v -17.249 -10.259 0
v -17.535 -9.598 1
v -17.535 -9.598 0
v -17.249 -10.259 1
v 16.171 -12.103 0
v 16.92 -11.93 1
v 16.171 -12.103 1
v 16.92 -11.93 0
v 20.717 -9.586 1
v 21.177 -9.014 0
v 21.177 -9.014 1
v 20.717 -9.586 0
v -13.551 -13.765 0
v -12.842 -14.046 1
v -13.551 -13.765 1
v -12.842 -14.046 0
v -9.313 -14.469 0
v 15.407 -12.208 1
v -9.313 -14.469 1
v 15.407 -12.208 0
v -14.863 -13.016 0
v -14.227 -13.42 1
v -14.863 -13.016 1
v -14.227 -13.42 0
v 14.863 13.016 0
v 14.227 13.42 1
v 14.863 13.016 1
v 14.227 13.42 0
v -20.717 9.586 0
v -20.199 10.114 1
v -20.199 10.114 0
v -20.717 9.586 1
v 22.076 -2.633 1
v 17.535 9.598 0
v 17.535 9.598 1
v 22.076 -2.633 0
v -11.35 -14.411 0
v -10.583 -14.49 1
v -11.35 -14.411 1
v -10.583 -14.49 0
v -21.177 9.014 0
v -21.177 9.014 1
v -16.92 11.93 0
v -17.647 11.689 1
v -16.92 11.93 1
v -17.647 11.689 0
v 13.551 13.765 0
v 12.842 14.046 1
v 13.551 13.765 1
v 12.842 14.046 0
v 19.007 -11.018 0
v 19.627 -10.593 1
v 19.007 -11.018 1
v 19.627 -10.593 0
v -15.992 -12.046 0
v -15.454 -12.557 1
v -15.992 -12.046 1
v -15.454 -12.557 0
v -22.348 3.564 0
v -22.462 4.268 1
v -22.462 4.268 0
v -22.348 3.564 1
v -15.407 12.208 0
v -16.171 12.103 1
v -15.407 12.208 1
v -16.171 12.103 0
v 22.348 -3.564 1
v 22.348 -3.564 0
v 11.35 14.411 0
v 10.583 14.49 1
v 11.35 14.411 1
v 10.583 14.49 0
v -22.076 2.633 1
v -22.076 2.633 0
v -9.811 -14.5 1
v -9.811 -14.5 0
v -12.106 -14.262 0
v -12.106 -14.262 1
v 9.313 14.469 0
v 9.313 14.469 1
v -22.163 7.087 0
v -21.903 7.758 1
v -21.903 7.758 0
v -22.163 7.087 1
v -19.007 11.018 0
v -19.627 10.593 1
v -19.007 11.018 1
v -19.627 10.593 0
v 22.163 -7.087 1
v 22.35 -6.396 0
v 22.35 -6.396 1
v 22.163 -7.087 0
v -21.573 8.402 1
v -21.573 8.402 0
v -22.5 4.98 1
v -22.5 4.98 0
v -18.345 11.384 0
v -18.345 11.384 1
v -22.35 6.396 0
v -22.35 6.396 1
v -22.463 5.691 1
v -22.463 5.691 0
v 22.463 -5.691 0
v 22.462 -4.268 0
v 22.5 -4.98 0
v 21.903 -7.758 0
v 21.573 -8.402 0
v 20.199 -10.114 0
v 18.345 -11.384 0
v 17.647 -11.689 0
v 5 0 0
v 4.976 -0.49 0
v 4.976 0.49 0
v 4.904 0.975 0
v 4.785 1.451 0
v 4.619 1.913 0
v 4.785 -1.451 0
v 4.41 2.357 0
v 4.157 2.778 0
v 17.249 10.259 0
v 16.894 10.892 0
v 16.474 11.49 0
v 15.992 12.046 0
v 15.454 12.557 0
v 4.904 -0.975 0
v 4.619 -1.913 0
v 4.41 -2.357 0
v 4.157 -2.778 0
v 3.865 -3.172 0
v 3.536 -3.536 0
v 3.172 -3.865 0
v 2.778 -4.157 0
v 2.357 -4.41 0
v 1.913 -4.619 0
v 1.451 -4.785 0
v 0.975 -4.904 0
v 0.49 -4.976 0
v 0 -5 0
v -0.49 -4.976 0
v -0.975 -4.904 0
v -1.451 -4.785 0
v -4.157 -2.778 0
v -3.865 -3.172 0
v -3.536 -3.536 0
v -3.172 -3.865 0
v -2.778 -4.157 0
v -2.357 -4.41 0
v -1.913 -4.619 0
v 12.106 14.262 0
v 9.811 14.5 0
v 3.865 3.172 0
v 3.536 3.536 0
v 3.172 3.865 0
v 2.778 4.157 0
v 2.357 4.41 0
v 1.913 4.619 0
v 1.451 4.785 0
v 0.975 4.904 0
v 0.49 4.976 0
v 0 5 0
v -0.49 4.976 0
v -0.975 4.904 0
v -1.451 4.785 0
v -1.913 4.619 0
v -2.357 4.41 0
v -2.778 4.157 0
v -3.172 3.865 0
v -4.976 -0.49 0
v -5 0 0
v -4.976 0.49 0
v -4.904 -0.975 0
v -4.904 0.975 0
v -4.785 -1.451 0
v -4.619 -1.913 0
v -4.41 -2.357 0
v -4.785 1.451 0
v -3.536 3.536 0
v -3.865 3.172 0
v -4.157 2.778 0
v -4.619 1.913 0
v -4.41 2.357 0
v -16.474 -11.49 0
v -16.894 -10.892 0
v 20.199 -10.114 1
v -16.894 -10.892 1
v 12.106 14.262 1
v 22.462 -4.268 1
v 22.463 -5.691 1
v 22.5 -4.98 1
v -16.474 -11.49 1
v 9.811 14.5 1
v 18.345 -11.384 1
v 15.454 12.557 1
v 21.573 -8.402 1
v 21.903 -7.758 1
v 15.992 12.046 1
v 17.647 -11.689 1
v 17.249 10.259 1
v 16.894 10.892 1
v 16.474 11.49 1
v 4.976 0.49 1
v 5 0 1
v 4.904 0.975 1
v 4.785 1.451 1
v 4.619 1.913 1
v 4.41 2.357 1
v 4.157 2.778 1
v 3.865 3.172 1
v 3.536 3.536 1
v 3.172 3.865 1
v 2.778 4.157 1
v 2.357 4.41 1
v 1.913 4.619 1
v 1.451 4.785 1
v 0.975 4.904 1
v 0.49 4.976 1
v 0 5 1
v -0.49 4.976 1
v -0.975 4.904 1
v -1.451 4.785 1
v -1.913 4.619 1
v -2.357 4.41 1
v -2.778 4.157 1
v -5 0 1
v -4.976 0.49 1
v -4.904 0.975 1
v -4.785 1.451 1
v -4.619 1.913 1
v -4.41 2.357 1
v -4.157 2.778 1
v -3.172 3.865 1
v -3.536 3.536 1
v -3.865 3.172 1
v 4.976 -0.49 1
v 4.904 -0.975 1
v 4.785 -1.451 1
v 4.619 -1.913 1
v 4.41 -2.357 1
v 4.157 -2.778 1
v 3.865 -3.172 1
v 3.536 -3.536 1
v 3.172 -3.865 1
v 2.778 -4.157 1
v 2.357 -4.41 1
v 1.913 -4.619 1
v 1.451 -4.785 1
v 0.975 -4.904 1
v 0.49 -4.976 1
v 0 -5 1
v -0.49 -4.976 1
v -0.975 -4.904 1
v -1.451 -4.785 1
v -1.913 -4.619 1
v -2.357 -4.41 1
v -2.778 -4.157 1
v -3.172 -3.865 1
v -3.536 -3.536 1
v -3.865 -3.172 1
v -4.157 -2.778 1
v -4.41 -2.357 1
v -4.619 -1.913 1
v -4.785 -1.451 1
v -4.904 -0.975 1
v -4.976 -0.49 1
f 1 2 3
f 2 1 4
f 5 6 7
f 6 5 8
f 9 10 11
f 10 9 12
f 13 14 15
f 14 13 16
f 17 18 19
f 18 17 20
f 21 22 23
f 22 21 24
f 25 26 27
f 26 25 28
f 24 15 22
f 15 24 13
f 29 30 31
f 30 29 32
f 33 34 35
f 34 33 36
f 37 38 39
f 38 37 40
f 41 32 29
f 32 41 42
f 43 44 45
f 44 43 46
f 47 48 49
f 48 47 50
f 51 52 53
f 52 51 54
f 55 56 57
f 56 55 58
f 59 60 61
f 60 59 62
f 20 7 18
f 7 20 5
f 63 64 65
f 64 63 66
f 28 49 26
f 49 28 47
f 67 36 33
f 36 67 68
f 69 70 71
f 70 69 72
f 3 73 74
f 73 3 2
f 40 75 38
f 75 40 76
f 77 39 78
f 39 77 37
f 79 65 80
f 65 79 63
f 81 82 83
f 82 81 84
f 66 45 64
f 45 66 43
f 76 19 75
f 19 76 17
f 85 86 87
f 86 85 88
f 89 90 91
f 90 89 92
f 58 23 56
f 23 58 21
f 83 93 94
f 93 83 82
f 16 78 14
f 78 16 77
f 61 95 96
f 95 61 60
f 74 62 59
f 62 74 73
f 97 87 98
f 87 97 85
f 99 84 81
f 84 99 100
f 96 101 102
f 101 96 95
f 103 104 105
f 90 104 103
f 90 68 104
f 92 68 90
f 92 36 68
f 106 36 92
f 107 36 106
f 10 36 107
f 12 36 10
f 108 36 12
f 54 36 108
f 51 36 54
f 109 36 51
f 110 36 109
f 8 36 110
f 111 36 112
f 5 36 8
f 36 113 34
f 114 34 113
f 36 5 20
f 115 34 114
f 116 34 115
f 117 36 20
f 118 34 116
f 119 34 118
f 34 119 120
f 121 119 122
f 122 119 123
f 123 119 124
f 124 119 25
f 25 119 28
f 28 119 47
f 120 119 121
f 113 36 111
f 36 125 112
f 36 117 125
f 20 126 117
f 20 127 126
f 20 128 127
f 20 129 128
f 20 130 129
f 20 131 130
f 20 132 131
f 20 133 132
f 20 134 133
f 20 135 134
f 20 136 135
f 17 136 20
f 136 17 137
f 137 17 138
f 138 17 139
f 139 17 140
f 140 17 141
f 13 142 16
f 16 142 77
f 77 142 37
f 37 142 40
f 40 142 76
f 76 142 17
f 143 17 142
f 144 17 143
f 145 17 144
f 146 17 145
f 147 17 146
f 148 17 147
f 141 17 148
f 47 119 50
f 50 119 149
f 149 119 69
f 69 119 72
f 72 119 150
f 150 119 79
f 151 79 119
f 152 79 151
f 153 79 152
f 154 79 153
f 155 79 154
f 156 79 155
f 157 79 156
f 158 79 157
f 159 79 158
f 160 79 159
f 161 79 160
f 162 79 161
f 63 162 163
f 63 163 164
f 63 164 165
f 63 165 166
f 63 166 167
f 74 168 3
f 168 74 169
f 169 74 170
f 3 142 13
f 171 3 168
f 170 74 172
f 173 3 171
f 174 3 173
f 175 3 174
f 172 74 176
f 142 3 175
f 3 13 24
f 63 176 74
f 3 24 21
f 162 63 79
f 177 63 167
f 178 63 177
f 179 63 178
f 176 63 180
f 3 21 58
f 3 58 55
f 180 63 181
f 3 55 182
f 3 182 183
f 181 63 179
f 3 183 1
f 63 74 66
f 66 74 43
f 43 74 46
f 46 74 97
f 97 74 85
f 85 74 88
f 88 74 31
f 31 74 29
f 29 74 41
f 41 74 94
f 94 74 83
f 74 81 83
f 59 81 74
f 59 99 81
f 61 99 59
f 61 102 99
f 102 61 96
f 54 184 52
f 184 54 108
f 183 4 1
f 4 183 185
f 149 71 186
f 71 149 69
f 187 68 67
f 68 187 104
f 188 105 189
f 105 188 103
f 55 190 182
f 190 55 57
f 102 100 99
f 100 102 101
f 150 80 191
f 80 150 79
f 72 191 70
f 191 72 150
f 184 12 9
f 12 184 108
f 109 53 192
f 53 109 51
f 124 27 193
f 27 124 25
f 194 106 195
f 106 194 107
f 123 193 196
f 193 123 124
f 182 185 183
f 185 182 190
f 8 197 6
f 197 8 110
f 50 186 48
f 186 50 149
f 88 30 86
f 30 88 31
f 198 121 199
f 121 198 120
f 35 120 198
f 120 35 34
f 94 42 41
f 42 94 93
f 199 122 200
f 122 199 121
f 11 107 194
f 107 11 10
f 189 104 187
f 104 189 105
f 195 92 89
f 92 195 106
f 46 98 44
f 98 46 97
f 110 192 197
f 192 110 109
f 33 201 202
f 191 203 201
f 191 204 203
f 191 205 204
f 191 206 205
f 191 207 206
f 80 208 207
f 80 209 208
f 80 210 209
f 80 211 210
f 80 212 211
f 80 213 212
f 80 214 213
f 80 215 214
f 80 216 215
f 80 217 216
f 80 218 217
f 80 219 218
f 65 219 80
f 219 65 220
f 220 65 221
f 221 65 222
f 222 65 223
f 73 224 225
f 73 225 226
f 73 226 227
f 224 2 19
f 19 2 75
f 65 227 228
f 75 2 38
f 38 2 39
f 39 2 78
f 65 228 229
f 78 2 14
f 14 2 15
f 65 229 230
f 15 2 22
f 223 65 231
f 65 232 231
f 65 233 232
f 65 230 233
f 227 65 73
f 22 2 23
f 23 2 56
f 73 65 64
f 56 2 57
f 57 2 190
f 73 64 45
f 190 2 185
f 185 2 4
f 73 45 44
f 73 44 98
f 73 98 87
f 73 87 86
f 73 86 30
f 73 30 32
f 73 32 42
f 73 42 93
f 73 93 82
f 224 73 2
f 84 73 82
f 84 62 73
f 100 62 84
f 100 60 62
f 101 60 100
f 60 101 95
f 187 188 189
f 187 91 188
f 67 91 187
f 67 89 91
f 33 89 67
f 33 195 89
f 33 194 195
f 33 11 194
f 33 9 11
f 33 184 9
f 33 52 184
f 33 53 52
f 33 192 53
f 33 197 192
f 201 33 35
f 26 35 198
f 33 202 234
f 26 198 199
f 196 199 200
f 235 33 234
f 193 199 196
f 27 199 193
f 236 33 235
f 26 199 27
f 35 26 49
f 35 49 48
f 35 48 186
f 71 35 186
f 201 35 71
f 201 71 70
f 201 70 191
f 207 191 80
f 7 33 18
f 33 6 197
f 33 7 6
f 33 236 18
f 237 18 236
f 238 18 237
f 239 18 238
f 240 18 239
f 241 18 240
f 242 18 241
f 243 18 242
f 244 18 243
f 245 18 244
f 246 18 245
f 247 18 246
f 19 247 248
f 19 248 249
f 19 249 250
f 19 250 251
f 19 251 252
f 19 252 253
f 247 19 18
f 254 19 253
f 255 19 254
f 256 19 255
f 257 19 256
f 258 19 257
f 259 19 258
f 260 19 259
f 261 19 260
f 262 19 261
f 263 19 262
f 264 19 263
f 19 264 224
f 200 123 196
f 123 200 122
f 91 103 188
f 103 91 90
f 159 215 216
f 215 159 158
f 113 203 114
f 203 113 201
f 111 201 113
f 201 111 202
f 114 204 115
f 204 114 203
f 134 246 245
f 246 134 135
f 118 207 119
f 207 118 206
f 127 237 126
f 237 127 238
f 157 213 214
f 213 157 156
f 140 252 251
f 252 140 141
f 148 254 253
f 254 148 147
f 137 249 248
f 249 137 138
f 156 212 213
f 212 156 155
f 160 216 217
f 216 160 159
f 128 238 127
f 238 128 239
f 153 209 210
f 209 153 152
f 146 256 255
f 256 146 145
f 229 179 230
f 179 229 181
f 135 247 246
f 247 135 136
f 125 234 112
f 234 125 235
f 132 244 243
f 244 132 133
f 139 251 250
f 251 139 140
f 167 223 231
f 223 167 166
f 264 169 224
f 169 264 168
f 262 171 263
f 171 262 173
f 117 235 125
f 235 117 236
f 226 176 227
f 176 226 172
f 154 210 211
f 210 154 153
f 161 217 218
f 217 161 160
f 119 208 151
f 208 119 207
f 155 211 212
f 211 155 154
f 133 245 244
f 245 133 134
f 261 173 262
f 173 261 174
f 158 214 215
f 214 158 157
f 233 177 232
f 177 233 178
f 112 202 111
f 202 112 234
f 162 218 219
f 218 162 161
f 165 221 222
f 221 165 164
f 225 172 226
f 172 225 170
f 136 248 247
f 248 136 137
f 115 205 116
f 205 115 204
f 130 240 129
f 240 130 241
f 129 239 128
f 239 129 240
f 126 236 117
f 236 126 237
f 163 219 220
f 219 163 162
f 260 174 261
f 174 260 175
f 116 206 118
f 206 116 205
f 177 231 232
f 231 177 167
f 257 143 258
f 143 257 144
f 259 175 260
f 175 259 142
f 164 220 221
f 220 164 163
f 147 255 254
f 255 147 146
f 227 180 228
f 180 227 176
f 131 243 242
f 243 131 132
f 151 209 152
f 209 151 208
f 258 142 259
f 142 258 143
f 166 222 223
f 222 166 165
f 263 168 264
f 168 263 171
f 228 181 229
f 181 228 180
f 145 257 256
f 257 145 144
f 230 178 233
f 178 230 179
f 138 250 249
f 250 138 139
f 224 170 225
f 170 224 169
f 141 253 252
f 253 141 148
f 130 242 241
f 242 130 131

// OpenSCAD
// Plantilla de prueba: mismo contorno y agujero, solo 1 mm de espesor.
// Imprimela primero (2-3 minutos) para verificar el calce en la puerta
// antes de gastar tiempo/material en la pieza final.

LARGO = 45; ANCHO = 29; ESPESOR = 1; AGUJERO_D = 10; RADIO_ESQ = 7;
$fn = 64;

CONTORNO = [
    [-0.5000,  0.3759],
    [-0.3067, -0.5000],
    [ 0.5000, -0.3759],
    [ 0.3067,  0.5000]
];

difference() {
    resize([LARGO, ANCHO, ESPESOR], auto = false)
        linear_extrude(height = ESPESOR)
            offset(r = RADIO_ESQ) offset(r = -RADIO_ESQ)
                scale([LARGO, ANCHO]) polygon(CONTORNO);
    translate([0, 0, -1]) cylinder(h = ESPESOR + 2, d = AGUJERO_D);
}
